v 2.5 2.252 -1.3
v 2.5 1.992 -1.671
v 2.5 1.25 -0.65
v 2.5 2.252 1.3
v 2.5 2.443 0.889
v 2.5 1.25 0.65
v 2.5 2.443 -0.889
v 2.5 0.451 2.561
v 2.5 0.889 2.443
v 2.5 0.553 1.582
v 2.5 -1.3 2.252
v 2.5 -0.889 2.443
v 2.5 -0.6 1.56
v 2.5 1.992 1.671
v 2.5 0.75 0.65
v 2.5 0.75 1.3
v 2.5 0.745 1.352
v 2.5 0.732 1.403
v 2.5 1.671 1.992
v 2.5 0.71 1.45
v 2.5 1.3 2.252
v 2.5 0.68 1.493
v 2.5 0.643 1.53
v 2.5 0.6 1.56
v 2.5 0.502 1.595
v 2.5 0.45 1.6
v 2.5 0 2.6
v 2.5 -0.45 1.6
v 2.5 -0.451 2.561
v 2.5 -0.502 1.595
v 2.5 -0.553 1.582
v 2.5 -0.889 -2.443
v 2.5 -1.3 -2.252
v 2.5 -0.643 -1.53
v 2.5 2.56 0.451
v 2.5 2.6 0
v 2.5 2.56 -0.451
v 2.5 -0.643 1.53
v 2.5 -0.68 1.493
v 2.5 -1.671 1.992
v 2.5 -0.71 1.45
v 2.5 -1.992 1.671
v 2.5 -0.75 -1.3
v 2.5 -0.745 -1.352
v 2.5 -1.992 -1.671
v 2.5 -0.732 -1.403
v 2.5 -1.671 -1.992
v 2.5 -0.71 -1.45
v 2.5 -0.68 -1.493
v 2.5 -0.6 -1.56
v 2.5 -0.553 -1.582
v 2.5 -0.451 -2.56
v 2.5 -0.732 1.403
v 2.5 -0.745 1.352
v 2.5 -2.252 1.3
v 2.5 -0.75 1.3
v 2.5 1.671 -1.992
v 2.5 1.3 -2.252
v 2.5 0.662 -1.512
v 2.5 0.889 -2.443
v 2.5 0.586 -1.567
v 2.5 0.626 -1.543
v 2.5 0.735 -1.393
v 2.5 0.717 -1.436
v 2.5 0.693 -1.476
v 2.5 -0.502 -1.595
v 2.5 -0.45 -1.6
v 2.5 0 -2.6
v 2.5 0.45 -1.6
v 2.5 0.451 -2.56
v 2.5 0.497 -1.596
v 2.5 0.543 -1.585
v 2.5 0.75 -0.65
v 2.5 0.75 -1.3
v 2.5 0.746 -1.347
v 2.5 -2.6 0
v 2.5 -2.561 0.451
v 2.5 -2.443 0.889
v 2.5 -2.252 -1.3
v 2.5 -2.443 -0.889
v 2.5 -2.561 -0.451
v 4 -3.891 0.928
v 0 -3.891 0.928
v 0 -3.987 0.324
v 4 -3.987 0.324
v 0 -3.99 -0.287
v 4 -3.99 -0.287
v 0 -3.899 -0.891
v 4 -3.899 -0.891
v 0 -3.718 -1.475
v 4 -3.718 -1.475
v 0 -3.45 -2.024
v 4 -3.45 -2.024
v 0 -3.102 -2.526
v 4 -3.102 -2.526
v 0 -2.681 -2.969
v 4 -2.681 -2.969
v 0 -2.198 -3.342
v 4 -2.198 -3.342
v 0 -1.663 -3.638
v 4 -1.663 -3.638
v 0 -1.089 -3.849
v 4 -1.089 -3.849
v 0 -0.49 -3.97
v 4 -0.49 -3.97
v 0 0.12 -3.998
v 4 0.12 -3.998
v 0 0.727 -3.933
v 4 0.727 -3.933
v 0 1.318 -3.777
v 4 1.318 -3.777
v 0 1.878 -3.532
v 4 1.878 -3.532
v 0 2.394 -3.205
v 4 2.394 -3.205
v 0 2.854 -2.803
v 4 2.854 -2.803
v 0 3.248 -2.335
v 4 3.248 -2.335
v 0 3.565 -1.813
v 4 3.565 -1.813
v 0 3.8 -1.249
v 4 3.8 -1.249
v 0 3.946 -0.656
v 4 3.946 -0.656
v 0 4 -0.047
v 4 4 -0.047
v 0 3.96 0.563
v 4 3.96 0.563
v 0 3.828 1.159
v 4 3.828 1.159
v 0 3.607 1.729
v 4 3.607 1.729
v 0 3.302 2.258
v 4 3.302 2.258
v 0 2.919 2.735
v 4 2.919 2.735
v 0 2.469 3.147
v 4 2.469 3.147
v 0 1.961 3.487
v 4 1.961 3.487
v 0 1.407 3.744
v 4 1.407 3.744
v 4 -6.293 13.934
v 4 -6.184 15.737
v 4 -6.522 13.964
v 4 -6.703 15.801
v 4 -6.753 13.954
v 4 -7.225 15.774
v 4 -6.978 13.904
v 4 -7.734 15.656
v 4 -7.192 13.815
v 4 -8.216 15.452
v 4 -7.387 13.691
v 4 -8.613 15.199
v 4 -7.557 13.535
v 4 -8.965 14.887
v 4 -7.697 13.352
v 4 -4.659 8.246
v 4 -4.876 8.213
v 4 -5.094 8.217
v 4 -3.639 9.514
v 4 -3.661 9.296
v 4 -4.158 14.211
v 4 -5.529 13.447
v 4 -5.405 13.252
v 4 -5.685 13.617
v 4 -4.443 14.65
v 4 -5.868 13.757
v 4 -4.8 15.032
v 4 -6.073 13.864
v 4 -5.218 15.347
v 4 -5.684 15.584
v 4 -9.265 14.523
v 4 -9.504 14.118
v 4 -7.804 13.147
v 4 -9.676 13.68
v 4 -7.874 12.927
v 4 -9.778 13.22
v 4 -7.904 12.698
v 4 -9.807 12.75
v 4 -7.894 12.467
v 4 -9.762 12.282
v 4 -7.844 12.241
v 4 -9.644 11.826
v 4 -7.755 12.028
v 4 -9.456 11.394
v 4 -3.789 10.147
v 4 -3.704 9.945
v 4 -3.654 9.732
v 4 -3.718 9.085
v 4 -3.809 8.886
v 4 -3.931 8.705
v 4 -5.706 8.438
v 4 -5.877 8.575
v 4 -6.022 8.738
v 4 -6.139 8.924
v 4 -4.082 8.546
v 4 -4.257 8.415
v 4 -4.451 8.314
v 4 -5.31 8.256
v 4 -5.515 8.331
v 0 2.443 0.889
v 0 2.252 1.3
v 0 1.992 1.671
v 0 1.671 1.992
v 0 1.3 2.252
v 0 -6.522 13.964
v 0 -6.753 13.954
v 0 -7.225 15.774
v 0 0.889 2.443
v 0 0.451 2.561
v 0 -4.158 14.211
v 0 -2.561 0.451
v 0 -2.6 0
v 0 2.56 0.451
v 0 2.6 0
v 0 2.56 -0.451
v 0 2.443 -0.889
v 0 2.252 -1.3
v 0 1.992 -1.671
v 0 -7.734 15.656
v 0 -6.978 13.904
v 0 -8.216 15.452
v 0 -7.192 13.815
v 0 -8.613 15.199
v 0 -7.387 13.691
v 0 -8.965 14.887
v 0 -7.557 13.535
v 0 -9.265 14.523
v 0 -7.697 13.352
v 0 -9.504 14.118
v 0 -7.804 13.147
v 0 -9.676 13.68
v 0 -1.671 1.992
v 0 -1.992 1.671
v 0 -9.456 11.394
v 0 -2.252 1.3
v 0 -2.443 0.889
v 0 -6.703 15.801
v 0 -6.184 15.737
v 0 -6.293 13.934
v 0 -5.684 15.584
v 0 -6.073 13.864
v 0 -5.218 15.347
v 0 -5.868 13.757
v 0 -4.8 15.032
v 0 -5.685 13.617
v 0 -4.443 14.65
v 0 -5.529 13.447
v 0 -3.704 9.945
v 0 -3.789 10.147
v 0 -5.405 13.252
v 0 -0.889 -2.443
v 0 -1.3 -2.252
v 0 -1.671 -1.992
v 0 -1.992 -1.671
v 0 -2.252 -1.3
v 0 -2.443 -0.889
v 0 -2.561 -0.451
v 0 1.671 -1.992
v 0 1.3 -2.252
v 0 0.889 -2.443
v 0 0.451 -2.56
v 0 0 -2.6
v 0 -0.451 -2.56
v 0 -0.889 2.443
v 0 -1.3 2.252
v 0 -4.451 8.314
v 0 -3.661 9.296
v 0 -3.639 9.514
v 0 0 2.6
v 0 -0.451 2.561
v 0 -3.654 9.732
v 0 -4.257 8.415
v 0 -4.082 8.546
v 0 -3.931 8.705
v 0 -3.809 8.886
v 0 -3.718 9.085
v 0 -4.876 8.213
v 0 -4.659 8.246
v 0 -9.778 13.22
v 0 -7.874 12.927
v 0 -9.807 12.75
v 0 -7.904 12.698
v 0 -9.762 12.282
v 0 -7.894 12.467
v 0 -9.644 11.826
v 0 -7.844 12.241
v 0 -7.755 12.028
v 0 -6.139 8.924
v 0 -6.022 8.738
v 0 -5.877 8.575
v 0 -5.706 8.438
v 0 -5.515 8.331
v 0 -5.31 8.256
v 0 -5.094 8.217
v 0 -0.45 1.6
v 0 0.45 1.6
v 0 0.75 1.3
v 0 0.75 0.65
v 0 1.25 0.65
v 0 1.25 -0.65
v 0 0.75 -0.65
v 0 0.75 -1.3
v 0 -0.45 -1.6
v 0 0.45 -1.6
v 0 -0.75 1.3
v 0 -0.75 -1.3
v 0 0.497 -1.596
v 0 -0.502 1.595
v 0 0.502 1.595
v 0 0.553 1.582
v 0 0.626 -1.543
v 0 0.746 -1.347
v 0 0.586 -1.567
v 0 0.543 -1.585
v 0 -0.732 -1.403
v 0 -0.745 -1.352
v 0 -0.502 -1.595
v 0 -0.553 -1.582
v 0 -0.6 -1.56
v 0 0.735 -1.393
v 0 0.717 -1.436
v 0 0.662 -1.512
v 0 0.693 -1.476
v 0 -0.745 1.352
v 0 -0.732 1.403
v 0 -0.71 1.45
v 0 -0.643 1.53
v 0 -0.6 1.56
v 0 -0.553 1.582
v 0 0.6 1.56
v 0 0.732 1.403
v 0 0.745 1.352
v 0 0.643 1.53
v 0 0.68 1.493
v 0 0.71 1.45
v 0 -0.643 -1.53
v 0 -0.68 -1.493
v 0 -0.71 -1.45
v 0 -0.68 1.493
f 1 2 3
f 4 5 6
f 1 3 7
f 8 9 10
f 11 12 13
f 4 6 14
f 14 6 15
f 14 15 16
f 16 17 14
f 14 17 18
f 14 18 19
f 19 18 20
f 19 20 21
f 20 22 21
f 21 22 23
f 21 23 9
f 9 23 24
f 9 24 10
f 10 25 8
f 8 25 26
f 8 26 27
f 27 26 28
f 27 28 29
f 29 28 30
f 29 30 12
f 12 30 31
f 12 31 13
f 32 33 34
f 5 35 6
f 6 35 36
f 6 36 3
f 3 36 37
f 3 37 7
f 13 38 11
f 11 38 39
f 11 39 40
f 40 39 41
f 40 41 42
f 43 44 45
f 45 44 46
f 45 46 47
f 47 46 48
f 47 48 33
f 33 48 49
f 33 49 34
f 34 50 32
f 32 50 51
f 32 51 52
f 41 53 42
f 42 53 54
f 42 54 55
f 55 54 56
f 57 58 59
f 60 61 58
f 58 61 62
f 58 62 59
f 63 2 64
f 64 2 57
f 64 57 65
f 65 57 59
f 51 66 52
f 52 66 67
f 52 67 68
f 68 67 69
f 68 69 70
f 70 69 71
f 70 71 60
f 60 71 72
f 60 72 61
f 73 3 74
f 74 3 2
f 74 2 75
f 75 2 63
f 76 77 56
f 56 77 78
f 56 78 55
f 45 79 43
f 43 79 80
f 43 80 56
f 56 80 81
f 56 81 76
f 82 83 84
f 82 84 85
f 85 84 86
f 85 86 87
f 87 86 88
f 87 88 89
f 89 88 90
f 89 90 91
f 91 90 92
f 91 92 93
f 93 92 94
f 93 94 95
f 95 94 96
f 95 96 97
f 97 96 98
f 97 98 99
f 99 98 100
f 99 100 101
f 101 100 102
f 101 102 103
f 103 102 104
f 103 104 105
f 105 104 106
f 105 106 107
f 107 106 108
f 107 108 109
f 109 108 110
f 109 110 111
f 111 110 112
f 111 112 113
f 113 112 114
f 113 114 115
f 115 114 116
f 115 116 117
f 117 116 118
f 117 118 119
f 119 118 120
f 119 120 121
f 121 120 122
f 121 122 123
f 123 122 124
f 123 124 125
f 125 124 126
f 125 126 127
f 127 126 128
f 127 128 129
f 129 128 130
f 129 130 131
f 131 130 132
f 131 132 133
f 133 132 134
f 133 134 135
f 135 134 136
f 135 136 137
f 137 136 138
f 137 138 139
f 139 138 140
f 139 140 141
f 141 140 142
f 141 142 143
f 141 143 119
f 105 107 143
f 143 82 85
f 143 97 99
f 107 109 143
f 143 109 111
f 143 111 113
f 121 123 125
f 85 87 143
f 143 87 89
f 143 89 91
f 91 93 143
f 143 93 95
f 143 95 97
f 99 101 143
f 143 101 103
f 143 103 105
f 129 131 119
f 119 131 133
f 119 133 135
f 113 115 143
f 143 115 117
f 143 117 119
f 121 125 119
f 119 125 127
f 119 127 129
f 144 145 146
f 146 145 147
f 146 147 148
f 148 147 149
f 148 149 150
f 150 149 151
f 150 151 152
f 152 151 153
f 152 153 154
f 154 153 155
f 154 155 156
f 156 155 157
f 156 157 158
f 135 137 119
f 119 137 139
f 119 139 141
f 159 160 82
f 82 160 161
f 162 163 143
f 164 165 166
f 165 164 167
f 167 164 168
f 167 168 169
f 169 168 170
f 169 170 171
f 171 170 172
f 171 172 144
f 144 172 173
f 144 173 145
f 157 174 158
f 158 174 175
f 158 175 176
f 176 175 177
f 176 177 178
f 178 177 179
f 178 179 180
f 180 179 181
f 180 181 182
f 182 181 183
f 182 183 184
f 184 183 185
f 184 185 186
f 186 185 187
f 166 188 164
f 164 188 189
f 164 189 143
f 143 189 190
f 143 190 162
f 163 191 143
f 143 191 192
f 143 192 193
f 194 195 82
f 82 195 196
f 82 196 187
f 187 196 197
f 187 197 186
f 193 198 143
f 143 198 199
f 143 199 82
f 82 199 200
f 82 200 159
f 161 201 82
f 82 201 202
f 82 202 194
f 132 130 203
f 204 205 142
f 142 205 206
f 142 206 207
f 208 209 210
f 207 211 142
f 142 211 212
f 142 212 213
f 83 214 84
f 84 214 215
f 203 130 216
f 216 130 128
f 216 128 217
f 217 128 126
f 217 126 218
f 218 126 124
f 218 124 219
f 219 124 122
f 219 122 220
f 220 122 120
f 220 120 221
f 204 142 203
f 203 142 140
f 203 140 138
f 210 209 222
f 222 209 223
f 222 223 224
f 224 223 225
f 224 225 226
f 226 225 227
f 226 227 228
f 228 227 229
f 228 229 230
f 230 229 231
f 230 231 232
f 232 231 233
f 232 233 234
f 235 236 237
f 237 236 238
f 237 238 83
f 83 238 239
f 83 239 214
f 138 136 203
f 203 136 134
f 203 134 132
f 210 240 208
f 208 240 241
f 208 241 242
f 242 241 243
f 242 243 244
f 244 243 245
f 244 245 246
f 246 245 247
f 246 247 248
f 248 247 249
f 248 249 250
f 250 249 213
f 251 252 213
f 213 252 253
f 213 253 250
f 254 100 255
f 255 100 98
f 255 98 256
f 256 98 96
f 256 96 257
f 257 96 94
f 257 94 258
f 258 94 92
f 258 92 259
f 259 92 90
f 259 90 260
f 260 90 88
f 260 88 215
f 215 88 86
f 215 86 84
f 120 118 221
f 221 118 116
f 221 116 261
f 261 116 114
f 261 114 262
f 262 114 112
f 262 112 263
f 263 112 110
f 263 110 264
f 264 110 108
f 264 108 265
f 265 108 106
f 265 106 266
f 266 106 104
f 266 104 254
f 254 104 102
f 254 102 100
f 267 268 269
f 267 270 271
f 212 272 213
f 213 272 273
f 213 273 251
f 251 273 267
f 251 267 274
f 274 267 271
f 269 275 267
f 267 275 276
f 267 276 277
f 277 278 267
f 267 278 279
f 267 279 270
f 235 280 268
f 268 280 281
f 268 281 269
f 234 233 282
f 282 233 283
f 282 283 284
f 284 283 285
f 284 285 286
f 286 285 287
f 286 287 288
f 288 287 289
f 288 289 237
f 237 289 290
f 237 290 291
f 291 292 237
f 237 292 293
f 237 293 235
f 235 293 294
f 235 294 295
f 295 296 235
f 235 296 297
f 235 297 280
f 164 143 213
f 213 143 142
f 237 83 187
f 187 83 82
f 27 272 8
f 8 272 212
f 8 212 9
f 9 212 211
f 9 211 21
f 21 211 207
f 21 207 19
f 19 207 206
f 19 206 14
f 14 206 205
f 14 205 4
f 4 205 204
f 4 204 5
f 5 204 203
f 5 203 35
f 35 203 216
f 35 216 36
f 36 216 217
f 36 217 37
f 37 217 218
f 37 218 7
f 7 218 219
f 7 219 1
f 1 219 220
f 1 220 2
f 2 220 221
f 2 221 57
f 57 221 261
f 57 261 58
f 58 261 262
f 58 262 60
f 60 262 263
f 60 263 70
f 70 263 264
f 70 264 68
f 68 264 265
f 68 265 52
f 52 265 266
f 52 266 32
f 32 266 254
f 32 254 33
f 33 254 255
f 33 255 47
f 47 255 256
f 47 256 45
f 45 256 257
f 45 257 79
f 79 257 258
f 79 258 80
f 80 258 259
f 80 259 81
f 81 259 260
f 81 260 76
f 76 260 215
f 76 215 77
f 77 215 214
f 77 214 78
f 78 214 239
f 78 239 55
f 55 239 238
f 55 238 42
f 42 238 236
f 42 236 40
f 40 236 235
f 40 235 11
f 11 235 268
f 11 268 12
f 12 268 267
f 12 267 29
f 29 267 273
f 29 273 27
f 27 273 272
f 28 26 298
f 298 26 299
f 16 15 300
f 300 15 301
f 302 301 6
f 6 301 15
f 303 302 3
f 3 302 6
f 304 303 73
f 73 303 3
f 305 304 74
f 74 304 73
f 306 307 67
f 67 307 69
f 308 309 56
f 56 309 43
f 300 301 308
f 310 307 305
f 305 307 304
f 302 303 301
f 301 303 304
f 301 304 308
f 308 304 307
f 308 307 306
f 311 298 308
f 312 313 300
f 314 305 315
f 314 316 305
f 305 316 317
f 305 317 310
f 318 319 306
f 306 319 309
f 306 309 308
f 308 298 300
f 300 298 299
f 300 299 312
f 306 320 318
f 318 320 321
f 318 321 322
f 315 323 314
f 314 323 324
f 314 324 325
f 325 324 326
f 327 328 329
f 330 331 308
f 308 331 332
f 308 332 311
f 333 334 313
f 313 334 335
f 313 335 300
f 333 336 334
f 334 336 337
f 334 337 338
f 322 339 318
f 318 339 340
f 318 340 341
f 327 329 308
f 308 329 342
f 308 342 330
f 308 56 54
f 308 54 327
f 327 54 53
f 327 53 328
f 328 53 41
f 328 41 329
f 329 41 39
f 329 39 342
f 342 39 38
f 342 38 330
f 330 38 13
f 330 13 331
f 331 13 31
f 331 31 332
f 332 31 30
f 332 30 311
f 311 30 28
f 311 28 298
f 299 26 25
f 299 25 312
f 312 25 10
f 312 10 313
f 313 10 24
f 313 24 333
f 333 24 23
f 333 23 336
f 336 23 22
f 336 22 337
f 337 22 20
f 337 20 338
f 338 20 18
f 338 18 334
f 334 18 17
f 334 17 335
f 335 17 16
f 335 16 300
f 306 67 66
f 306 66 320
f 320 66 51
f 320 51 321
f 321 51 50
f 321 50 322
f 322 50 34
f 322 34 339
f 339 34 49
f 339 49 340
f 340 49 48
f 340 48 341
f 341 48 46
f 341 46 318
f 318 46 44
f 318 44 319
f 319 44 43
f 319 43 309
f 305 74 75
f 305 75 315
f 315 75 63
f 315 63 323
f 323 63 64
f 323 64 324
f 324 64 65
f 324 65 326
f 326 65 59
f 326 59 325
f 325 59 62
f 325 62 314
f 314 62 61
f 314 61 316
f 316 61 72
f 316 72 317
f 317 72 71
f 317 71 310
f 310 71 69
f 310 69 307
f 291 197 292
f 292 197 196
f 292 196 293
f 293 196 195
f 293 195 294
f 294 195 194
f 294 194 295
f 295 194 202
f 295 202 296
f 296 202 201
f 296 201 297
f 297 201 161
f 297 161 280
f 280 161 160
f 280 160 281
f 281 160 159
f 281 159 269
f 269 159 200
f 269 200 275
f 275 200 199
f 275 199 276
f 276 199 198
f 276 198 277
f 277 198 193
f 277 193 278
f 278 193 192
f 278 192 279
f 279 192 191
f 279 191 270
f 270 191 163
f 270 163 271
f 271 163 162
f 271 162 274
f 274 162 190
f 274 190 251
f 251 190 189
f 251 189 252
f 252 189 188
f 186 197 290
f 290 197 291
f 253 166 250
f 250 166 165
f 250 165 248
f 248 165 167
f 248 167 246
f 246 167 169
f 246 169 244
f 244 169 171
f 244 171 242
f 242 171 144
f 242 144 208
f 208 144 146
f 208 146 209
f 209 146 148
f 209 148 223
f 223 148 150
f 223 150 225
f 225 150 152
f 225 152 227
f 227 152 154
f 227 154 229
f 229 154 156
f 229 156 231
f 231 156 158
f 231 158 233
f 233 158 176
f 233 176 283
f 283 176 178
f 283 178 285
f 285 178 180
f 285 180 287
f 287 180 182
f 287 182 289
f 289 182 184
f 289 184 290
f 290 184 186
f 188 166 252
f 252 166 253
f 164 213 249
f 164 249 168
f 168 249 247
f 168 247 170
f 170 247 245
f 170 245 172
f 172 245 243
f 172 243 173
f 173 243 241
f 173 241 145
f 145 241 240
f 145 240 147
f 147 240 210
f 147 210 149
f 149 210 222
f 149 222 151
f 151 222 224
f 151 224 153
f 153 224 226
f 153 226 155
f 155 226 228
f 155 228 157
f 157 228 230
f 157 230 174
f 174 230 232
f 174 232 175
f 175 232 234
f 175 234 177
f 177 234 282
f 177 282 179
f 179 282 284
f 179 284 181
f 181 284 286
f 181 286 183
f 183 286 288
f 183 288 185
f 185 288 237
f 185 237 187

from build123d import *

# Parameters (mm, degrees)
SKETCH5_R           = 4
BOSS_EXTRUDE2_DEPTH = 4
BOSS_EXTRUDE3_DEPTH = 4
SKETCH7_R           = 2.6
CUT_EXTRUDE3_DEPTH  = 2.5
BOSS_EXTRUDE4_DEPTH = 2.5
FILLET1_R           = 0.3
CUT_EXTRUDE4_REACH  = 22.452
FILLET2_R           = 3


with BuildPart() as part:
    # Sketch5 → Boss-Extrude2 (new body)
    with BuildSketch(Plane(origin=(0, 0, 0), x_dir=(0, 0, -1), z_dir=(1, 0, 0))):
        Circle(SKETCH5_R)
    extrude(amount=BOSS_EXTRUDE2_DEPTH)

    # Sketch6 → Boss-Extrude3 (add)
    with BuildSketch(Plane(origin=(0, 0, 0), x_dir=(0, 0, -1), z_dir=(1, 0, 0))):
        Polygon((-1.408414688, 2.648842779), (1.408414688, -2.648842779), (-14.043168187, -10.864595127), (-16.859997563, -5.56690957), align=None)
    extrude(amount=BOSS_EXTRUDE3_DEPTH)

    # Sketch7 → Cut-Extrude3 (cut)
    with BuildSketch(Plane.ZY):
        Circle(SKETCH7_R)
    extrude(amount=-CUT_EXTRUDE3_DEPTH, mode=Mode.SUBTRACT)

    # Sketch8 → Boss-Extrude4 (add)
    with BuildSketch(Plane.ZY.offset(-2.5)):
        Polygon((1.6, -0.75), (-1.6, -0.75), (-1.6, 0.75), (-0.65, 0.75), (-0.65, 1.25), (0.65, 1.25), (0.65, 0.75), (1.6, 0.75), align=None)
    extrude(amount=BOSS_EXTRUDE4_DEPTH)

    # Fillet1
    fillet1_edges = [part.edges().sort_by_distance(p)[0] for p in [
        (1.25, -0.75, 1.6),
        (1.25, 0.75, 1.6),
        (1.25, 0.75, -1.6),
        (1.25, -0.75, -1.6),
    ]]
    fillet(fillet1_edges, radius=FILLET1_R)

    # Sketch10 → Cut-Extrude4 (cut, up to next)
    with BuildSketch(Plane(origin=(4, 0, 0), x_dir=(0, 0, -1), z_dir=(1, 0, 0)), mode=Mode.PRIVATE) as cut_extrude4_sk1:
        with BuildLine():
            Line((-8.923549544, -6.139086946), (-12.02808746, -7.755207093))
            ThreePointArc((-12.02808746, -7.755207093), (-13.815193727, -7.191734651), (-13.251721285, -5.404628385))
            Line((-13.251721285, -5.404628385), (-10.147183369, -3.788508238))
            ThreePointArc((-10.147183369, -3.788508238), (-8.360077103, -4.35198068), (-8.923549544, -6.139086946))
        make_face()
    cut_extrude4_tool1 = extrude(cut_extrude4_sk1.sketch, amount=-CUT_EXTRUDE4_REACH, mode=Mode.PRIVATE) & part.part
    add(cut_extrude4_tool1.solids().sort_by_distance((4, -5.771858, 11.087635))[0], mode=Mode.SUBTRACT)

    # Fillet2
    fillet2_edges = [part.edges().sort_by_distance(p)[0] for p in [
        (2, -10.864595127, 14.043168187),
        (2, -5.56690957, 16.859997563),
    ]]
    fillet(fillet2_edges, radius=FILLET2_R - 0.0001)  # a hair under: the kernel refuses the full size


solid = part.part
